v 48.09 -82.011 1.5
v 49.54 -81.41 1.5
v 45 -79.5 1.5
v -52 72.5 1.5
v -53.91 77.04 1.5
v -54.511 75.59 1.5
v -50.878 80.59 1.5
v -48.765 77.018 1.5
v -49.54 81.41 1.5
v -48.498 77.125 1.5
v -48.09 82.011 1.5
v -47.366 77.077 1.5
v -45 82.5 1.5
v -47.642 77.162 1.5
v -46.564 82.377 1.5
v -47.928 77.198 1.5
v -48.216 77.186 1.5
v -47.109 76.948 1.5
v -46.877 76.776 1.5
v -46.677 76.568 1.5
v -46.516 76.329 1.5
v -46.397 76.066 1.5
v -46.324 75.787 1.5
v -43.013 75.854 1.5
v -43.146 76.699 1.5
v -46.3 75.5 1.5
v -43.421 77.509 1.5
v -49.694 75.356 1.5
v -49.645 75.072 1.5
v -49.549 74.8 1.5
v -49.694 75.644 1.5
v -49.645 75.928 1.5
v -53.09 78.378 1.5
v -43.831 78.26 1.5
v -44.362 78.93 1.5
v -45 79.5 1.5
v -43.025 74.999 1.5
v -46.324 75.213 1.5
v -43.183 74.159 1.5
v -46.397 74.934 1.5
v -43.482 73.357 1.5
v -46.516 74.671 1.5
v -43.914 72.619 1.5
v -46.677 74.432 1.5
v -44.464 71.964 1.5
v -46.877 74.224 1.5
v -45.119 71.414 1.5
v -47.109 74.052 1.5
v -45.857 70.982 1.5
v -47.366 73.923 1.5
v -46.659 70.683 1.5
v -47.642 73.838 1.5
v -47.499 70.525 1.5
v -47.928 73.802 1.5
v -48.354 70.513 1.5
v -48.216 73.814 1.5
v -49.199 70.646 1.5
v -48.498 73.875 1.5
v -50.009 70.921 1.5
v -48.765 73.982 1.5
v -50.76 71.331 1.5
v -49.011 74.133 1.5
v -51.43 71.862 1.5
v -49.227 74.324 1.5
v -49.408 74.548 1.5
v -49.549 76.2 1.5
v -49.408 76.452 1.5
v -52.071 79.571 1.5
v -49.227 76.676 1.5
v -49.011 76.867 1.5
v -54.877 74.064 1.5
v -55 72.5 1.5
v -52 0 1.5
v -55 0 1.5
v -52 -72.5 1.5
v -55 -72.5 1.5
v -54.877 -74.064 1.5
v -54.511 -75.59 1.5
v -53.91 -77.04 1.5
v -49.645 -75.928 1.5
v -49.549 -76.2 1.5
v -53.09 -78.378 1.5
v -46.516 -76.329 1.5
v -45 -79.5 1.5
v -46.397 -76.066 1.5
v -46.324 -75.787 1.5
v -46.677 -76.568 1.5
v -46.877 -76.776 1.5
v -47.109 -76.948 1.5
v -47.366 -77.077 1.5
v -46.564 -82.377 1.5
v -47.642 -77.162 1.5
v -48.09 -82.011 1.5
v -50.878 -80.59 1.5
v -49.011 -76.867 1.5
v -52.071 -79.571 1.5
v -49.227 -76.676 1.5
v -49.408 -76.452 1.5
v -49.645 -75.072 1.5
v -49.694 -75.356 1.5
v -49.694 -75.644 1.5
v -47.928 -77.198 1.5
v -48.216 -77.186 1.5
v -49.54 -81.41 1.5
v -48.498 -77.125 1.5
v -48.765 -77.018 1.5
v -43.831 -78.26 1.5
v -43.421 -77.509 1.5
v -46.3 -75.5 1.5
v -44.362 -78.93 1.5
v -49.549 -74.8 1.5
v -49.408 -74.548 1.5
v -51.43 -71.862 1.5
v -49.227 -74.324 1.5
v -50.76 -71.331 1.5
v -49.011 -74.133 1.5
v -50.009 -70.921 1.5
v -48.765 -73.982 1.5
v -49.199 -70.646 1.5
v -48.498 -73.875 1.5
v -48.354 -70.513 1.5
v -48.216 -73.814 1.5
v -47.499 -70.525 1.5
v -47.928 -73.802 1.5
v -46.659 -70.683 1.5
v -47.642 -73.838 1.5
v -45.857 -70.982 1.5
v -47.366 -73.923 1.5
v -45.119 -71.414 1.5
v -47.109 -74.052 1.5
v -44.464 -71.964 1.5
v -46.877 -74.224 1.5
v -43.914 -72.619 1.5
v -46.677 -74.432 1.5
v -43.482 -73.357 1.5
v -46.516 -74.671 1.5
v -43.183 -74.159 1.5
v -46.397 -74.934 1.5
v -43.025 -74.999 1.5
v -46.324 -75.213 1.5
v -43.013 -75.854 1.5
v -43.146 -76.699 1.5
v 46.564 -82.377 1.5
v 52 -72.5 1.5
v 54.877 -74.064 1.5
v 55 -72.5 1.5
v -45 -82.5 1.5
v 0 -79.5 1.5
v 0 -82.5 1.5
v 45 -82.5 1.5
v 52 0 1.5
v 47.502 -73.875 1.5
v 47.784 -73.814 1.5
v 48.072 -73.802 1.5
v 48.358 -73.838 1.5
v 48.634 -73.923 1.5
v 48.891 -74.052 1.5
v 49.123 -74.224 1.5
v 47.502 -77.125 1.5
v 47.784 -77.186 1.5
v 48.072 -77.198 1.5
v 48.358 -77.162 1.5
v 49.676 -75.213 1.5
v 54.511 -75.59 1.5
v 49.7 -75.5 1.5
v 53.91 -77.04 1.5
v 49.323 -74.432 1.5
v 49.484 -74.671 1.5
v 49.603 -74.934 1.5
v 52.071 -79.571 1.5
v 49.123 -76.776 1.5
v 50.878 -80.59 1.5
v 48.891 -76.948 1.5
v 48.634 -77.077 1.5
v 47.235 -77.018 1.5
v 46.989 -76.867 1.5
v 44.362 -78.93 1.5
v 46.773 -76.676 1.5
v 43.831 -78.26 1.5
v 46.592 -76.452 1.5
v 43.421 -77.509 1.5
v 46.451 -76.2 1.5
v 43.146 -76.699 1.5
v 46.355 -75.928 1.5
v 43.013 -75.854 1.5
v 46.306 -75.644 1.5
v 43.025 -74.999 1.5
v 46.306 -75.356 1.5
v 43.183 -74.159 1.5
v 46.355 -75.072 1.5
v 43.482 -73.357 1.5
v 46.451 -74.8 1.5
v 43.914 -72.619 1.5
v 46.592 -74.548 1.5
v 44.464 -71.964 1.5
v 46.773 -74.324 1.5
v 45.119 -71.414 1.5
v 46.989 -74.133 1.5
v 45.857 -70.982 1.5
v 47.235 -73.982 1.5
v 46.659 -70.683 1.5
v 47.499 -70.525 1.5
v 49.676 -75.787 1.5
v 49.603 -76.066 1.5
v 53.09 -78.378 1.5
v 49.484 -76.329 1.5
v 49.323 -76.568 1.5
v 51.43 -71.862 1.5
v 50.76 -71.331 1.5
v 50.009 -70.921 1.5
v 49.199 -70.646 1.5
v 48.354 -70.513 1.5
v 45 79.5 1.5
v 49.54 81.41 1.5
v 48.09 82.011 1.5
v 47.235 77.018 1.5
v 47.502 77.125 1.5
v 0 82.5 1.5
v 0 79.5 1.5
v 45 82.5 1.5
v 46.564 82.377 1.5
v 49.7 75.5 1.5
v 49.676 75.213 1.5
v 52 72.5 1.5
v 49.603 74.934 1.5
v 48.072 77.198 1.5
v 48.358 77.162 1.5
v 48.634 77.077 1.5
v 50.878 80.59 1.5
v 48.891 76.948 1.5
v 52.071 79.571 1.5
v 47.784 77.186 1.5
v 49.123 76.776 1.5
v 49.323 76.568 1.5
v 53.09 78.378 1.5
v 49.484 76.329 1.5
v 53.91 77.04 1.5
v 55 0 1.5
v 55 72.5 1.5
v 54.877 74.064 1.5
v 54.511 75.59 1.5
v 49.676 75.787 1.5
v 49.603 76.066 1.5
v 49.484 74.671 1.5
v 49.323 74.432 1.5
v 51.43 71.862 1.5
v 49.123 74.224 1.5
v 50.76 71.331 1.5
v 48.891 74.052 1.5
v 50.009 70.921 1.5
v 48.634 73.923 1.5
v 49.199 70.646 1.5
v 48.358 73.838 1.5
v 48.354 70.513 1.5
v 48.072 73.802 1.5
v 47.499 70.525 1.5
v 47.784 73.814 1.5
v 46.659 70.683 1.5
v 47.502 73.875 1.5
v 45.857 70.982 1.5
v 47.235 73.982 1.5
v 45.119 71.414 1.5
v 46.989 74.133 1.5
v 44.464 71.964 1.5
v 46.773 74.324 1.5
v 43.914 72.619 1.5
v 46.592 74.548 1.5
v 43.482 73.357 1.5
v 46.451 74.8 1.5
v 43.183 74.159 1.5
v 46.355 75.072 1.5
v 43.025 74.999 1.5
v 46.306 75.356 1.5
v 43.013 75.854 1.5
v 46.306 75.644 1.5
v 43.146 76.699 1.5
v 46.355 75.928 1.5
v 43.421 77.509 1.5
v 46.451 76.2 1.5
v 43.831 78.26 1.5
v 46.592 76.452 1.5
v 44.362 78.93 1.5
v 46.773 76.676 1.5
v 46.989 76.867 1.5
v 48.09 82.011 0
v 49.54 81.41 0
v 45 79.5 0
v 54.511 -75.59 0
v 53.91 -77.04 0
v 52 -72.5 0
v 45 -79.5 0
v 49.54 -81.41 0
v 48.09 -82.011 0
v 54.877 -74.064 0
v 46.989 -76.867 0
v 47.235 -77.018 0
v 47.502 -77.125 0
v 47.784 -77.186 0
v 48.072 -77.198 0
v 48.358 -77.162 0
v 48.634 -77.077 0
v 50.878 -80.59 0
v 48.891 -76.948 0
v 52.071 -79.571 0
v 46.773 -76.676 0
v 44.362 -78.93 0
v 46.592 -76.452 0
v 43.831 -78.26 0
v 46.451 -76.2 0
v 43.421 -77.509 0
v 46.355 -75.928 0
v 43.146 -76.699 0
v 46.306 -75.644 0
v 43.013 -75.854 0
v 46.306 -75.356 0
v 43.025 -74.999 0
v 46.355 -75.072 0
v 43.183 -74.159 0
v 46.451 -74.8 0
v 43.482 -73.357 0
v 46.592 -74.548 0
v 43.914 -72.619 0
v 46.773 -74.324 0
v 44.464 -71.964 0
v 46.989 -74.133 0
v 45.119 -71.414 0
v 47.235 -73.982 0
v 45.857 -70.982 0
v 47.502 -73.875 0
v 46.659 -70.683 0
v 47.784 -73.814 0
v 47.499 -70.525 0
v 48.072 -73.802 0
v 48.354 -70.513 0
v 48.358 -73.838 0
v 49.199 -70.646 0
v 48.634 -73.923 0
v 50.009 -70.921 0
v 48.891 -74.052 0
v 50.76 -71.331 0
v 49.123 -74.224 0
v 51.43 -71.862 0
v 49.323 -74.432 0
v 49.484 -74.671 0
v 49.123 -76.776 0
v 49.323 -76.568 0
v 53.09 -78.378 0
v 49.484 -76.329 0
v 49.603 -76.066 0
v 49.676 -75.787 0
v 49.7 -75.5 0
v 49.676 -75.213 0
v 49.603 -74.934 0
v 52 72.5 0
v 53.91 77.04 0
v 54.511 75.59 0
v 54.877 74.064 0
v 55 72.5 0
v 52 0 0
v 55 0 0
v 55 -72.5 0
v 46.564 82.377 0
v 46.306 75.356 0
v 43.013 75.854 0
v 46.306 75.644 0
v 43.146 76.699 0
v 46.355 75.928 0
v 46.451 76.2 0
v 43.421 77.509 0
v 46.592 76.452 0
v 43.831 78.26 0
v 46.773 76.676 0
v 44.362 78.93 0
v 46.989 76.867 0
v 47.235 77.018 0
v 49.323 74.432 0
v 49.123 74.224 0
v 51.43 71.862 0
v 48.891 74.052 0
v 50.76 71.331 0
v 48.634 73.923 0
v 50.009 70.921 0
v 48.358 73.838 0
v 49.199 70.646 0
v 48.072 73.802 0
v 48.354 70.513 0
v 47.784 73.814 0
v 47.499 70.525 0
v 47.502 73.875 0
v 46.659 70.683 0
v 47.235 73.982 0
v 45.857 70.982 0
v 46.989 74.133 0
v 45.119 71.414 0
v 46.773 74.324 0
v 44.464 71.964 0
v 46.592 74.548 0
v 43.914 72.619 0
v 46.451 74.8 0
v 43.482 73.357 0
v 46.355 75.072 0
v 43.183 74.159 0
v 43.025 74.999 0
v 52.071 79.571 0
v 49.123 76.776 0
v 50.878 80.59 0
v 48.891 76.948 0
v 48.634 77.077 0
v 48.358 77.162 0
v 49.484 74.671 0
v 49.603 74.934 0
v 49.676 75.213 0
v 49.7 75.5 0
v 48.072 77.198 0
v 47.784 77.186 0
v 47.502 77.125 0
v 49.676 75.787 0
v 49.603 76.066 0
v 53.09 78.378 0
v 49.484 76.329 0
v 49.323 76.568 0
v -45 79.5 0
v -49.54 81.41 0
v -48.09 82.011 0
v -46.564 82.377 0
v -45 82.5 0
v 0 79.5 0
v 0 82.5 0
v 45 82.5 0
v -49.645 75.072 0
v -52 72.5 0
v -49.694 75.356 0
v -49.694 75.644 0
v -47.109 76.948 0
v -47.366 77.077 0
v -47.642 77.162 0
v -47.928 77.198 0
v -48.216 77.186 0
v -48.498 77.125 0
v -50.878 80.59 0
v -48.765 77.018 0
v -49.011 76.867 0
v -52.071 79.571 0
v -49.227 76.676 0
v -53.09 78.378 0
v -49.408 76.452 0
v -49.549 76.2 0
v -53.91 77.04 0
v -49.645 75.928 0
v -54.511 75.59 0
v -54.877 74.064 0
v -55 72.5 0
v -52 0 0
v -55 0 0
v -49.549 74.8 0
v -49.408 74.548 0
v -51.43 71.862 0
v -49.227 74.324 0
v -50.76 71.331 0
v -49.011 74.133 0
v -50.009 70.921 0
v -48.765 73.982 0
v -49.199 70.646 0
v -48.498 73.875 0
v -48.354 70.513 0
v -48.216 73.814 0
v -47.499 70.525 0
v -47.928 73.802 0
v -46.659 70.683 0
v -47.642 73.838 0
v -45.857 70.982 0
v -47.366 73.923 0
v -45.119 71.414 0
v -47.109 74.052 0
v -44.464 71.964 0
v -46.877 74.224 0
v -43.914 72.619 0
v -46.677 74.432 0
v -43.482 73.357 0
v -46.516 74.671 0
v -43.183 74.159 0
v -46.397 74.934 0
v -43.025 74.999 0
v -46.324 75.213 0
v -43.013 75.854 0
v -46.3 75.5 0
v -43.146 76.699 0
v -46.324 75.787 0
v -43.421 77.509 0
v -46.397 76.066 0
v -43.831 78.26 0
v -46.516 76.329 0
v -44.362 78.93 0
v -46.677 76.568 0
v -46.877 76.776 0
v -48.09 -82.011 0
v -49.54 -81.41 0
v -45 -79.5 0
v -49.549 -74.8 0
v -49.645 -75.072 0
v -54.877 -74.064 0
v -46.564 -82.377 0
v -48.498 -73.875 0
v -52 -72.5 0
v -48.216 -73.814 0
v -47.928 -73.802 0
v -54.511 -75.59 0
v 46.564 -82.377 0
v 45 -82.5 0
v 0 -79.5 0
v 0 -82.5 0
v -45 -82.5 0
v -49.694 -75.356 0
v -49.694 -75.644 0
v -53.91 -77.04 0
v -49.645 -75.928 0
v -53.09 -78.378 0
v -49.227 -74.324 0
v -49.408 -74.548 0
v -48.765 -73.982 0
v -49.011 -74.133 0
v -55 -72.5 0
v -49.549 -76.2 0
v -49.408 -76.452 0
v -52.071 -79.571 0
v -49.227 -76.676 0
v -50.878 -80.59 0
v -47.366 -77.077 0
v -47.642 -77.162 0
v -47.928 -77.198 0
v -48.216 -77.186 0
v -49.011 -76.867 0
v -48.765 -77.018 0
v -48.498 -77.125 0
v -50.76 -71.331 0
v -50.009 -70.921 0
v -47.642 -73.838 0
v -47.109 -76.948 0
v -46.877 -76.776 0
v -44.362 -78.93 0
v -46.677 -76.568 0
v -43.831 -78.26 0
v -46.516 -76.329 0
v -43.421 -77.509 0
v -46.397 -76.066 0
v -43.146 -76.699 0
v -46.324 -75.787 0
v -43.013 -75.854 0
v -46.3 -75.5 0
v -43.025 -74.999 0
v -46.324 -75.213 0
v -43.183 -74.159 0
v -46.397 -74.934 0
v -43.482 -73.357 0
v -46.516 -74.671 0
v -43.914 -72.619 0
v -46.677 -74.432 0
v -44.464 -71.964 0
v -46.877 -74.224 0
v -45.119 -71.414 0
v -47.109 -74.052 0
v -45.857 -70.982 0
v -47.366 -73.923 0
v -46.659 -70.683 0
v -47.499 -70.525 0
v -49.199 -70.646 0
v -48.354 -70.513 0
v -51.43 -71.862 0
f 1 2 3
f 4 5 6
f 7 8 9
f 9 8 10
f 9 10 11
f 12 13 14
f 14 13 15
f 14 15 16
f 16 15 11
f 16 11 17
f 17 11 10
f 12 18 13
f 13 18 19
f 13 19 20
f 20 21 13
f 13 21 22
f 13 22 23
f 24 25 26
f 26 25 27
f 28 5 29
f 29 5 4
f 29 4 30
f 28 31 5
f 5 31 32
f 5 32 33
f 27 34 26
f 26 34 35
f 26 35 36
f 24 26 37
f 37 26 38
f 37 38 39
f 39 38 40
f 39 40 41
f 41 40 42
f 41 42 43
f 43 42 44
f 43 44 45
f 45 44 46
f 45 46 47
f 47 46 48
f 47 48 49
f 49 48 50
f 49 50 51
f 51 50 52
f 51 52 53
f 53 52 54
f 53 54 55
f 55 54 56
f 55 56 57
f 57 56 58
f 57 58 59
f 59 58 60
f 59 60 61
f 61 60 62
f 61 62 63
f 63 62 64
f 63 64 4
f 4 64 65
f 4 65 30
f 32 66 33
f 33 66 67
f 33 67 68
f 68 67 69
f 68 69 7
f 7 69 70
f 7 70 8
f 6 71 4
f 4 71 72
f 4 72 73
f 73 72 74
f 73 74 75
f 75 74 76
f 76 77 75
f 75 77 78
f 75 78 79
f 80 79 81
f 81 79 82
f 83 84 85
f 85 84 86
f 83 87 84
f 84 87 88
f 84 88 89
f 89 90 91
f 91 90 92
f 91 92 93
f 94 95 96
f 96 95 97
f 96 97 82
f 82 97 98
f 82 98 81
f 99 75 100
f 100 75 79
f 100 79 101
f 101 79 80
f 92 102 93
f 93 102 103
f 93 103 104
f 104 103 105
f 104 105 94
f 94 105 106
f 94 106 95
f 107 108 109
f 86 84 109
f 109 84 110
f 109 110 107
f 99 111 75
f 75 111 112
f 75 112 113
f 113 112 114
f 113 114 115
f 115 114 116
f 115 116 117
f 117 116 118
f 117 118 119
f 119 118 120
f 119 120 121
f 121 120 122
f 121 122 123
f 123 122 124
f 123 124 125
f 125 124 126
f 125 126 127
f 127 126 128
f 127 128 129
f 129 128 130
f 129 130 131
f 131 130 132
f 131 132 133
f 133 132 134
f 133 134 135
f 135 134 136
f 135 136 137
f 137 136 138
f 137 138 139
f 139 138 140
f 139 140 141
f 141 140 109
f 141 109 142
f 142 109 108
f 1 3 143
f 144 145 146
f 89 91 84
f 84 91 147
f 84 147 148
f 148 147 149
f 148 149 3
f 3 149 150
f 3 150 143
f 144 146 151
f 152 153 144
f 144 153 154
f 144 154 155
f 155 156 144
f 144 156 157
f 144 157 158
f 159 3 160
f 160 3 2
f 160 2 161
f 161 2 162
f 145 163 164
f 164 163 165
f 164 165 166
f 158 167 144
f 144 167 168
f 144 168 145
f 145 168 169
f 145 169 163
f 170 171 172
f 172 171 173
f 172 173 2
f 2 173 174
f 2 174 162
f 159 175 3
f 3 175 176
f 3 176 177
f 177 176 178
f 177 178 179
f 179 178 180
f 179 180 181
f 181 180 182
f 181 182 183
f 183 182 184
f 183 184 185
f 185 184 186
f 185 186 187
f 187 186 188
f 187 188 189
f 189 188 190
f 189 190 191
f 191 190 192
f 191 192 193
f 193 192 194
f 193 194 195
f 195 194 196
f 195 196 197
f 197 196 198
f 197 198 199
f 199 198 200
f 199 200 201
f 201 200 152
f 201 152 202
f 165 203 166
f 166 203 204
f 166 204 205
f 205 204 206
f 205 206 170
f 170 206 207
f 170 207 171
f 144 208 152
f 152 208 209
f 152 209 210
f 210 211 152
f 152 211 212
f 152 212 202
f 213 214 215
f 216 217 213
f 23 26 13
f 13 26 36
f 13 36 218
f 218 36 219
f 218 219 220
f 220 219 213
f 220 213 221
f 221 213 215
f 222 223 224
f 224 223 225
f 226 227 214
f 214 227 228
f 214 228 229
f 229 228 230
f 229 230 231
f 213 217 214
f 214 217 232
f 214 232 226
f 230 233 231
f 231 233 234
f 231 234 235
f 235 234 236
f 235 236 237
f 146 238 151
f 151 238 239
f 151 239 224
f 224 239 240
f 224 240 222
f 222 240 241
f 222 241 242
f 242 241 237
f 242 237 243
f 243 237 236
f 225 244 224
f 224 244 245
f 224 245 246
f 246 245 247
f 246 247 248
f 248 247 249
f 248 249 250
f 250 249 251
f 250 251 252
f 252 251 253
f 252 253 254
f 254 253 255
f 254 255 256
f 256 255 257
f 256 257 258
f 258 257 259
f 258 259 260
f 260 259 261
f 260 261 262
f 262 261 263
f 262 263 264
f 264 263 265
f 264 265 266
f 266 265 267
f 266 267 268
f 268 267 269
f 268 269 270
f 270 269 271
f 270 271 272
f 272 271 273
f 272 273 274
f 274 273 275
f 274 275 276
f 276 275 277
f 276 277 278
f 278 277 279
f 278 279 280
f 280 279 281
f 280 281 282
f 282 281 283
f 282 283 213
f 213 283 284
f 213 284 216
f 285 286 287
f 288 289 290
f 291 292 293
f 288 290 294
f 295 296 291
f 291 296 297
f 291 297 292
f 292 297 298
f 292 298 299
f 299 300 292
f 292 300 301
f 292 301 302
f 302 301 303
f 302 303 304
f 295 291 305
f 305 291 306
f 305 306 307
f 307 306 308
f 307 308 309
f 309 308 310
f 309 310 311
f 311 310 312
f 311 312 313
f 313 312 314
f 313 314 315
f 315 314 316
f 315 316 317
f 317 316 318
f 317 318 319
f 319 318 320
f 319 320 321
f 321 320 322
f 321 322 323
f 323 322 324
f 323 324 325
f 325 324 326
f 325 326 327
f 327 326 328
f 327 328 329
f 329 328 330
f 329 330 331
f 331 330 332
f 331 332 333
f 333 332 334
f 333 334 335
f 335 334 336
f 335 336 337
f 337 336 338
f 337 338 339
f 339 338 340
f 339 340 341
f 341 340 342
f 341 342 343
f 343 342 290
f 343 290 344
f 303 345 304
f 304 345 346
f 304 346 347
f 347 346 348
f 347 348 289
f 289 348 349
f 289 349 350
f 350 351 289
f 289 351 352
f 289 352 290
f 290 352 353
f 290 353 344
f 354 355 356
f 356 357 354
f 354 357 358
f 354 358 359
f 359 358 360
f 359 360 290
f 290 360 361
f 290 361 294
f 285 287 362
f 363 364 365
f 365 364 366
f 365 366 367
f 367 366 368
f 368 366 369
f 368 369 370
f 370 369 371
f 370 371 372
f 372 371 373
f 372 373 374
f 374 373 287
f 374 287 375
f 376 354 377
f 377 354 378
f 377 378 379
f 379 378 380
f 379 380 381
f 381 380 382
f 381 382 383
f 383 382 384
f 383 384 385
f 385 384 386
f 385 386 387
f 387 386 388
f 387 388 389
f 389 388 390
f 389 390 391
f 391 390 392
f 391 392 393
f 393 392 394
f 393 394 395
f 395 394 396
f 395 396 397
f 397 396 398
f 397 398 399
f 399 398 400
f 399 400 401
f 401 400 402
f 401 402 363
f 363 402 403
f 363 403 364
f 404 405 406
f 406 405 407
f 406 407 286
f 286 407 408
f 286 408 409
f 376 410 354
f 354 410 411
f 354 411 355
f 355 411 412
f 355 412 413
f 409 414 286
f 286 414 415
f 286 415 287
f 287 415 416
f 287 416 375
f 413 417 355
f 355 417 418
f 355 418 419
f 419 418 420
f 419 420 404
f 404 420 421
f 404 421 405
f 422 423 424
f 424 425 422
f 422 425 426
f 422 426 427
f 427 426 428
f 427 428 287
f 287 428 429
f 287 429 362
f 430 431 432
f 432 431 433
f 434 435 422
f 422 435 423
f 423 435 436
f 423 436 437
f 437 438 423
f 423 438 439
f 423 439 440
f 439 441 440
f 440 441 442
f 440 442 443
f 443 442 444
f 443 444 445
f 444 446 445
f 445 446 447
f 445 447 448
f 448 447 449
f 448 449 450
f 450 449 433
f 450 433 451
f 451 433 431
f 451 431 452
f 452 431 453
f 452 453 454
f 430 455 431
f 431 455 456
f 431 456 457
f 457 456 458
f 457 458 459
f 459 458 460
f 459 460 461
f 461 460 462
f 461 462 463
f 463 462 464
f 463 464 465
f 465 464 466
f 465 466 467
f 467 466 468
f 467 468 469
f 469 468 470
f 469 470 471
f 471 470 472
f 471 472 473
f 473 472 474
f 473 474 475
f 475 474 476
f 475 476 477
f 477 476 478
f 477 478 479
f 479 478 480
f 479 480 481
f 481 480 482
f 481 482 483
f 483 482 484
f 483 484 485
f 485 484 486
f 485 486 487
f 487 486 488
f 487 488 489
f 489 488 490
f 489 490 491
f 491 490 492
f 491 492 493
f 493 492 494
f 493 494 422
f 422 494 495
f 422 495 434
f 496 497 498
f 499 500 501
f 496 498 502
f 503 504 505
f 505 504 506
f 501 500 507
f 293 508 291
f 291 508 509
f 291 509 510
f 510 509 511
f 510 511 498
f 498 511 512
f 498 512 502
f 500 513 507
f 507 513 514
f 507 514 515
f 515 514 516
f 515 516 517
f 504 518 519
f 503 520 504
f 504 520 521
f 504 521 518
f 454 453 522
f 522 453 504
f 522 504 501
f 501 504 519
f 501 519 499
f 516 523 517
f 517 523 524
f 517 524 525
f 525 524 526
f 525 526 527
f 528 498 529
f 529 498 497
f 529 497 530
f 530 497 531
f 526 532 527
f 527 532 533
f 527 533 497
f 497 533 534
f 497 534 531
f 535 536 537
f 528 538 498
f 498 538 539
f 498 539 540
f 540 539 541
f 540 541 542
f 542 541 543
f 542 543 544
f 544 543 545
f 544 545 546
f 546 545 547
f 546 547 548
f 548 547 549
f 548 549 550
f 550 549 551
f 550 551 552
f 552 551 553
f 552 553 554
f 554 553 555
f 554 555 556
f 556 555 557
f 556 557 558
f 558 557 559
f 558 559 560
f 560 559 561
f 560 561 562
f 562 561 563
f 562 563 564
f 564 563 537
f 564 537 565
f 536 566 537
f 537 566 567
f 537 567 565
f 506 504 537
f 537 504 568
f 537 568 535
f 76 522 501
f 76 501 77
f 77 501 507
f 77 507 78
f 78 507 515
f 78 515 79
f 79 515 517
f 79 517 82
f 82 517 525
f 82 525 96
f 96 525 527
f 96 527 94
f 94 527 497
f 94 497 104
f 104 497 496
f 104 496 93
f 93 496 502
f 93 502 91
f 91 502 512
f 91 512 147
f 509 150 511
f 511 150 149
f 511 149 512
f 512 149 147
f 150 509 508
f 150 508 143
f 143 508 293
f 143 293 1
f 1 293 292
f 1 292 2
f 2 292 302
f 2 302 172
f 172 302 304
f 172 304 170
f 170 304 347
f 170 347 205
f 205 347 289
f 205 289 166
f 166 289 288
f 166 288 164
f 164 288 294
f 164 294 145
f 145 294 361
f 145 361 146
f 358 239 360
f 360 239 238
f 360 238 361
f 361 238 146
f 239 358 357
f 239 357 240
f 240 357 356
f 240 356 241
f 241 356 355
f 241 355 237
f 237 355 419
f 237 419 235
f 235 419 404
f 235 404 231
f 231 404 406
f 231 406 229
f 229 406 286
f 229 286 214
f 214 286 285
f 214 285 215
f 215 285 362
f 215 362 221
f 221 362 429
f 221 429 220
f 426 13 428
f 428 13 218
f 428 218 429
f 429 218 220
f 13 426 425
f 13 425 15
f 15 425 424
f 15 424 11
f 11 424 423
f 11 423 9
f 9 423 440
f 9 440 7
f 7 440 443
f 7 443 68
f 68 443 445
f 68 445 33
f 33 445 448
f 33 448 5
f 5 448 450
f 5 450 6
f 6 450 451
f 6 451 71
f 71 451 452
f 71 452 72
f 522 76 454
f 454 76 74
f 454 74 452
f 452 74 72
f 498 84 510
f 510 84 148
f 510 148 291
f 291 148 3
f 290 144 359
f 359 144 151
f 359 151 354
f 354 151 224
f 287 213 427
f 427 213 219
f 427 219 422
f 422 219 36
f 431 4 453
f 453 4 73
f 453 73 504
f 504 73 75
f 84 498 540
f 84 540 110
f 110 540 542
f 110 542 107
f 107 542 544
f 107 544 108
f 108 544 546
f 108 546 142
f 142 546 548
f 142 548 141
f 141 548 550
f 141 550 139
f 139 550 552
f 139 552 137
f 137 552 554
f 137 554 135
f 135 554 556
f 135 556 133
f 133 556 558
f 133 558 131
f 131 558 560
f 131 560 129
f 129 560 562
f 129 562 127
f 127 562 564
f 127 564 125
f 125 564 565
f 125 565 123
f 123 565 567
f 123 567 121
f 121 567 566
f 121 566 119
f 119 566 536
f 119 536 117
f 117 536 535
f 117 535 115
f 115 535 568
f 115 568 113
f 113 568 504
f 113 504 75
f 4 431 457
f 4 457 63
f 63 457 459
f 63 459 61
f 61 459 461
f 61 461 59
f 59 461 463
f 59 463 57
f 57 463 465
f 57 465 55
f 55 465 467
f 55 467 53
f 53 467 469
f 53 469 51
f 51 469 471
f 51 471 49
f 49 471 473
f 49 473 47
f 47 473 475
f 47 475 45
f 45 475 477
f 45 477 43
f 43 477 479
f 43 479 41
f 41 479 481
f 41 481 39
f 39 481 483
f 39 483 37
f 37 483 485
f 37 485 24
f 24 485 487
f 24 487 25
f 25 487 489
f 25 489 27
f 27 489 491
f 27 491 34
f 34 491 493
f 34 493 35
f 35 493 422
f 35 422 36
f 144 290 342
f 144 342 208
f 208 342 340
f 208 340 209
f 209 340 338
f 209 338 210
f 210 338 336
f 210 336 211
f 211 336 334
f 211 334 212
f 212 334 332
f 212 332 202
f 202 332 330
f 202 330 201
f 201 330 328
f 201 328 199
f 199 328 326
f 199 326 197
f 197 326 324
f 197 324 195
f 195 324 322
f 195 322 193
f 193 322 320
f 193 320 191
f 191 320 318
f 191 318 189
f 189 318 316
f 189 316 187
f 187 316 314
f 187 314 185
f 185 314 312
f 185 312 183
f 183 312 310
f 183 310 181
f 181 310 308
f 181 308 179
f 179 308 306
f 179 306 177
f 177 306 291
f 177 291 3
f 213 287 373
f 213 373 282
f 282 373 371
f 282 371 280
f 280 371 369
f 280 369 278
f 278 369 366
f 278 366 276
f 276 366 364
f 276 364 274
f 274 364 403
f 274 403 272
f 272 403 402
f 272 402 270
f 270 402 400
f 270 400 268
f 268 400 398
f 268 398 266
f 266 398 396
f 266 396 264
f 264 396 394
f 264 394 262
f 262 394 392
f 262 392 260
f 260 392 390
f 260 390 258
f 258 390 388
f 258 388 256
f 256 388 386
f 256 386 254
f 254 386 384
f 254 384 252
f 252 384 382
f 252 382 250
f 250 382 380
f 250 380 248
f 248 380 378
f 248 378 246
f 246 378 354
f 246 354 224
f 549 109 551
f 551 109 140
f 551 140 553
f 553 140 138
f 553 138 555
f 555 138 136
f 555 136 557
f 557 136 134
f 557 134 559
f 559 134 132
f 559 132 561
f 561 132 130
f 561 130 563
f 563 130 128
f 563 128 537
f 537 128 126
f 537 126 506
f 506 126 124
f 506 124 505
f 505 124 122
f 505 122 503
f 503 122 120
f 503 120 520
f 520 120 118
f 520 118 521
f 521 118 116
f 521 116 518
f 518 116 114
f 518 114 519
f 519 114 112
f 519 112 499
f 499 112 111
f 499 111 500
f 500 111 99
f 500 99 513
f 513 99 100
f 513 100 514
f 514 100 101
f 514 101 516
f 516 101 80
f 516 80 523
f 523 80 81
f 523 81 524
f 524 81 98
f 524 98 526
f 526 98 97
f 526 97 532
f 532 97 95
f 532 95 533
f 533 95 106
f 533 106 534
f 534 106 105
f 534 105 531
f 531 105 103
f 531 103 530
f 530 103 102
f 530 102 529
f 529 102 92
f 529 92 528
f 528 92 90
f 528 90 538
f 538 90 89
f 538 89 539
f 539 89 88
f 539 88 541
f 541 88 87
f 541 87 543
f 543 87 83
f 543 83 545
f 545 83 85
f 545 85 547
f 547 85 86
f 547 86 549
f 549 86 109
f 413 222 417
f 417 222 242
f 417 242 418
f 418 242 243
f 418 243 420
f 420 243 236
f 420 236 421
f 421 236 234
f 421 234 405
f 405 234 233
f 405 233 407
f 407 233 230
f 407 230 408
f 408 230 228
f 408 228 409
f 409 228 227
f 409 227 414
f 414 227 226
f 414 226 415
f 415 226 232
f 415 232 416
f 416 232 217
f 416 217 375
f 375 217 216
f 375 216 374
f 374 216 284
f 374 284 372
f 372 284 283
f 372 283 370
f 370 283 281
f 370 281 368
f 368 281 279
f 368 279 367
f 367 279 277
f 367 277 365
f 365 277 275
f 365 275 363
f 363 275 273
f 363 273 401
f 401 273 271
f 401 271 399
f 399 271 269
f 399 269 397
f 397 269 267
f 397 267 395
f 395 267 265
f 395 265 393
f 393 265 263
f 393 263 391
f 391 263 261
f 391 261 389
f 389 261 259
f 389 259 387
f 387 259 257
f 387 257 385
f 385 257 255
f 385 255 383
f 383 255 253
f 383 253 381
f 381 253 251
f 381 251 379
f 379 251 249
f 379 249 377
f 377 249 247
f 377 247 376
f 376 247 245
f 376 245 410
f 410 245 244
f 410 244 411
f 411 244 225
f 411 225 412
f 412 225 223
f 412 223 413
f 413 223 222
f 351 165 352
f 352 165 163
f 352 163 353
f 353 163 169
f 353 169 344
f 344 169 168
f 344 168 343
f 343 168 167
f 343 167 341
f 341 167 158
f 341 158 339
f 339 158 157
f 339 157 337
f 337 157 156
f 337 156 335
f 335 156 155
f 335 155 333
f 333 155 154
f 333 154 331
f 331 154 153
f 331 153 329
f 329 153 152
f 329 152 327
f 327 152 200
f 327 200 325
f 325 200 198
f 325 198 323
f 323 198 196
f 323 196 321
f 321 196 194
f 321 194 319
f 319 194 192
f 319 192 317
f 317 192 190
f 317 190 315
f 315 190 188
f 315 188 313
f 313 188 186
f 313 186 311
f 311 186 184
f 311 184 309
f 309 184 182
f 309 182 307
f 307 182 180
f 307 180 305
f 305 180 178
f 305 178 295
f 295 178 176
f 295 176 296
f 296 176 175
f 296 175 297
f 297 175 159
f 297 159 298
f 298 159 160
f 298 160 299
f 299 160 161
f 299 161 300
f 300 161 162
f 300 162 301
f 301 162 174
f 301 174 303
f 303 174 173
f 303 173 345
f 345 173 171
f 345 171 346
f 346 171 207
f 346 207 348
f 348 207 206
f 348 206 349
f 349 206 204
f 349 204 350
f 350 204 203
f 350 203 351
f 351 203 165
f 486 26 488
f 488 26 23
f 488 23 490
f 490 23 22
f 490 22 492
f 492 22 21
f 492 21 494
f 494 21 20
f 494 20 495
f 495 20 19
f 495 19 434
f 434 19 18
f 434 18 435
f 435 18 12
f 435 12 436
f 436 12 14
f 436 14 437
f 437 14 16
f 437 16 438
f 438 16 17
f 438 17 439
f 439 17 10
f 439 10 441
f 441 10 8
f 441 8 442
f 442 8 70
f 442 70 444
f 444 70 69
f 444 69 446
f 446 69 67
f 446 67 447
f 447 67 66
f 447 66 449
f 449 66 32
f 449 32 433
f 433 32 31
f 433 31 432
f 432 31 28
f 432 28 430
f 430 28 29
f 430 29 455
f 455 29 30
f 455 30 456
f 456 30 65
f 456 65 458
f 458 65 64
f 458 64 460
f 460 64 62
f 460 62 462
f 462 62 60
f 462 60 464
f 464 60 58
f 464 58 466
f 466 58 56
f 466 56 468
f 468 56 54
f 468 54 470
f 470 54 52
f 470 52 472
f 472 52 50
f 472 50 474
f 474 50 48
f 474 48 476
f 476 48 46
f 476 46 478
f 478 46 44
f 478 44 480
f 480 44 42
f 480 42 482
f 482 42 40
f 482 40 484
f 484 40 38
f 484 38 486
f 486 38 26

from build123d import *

# Parameters (mm, degrees)
BOSS_EXTRUDE1_DEPTH = 1.5
SKETCH2_R           = 5
BOSS_EXTRUDE2_DEPTH = 1.5
SKETCH3_R           = 1.7
CUT_EXTRUDE1_DEPTH  = 100.164005567


with BuildPart() as part:
    # Sketch1 → Boss-Extrude1 (new body)
    with BuildSketch(Plane.XY):
        with BuildLine():
            Line((-45, -82.5), (45, -82.5))
            ThreePointArc((45, -82.5), (52.071067812, -79.571067812), (55, -72.5))
            Line((55, -72.5), (55, 72.5))
            ThreePointArc((55, 72.5), (52.071067812, 79.571067812), (45, 82.5))
            Line((45, 82.5), (-45, 82.5))
            ThreePointArc((-45, 82.5), (-52.071067812, 79.571067812), (-55, 72.5))
            Line((-55, 72.5), (-55, -72.5))
            ThreePointArc((-55, -72.5), (-52.071067812, -79.571067812), (-45, -82.5))
        make_face()
        with BuildLine():
            Line((-45, -79.5), (45, -79.5))
            ThreePointArc((45, -79.5), (49.949747468, -77.449747468), (52, -72.5))
            Line((52, -72.5), (52, 72.5))
            ThreePointArc((52, 72.5), (49.949747468, 77.449747468), (45, 79.5))
            Line((45, 79.5), (-45, 79.5))
            ThreePointArc((-45, 79.5), (-49.949747468, 77.449747468), (-52, 72.5))
            Line((-52, 72.5), (-52, -72.5))
            ThreePointArc((-52, -72.5), (-49.949747468, -77.449747468), (-45, -79.5))
        make_face(mode=Mode.SUBTRACT)
    extrude(amount=BOSS_EXTRUDE1_DEPTH)

    # Sketch2 → Boss-Extrude2 (add)
    with BuildSketch(Plane.XY):
        with Locations((-48, -75.5)):
            Circle(SKETCH2_R)
        with Locations((-48, 75.5)):
            Circle(SKETCH2_R)
        with Locations((48, -75.5)):
            Circle(SKETCH2_R)
        with Locations((48, 75.5)):
            Circle(SKETCH2_R)
    extrude(amount=BOSS_EXTRUDE2_DEPTH)

    # Sketch3 → Cut-Extrude1 (cut, through all)
    with BuildSketch(Plane.XY.offset(1.5)):
        with Locations((-48, -75.5)):
            Circle(SKETCH3_R)
        with Locations((-48, 75.5)):
            Circle(SKETCH3_R)
        with Locations((48, -75.5)):
            Circle(SKETCH3_R)
        with Locations((48, 75.5)):
            Circle(SKETCH3_R)
    extrude(amount=-CUT_EXTRUDE1_DEPTH, mode=Mode.SUBTRACT)


solid = part.part
